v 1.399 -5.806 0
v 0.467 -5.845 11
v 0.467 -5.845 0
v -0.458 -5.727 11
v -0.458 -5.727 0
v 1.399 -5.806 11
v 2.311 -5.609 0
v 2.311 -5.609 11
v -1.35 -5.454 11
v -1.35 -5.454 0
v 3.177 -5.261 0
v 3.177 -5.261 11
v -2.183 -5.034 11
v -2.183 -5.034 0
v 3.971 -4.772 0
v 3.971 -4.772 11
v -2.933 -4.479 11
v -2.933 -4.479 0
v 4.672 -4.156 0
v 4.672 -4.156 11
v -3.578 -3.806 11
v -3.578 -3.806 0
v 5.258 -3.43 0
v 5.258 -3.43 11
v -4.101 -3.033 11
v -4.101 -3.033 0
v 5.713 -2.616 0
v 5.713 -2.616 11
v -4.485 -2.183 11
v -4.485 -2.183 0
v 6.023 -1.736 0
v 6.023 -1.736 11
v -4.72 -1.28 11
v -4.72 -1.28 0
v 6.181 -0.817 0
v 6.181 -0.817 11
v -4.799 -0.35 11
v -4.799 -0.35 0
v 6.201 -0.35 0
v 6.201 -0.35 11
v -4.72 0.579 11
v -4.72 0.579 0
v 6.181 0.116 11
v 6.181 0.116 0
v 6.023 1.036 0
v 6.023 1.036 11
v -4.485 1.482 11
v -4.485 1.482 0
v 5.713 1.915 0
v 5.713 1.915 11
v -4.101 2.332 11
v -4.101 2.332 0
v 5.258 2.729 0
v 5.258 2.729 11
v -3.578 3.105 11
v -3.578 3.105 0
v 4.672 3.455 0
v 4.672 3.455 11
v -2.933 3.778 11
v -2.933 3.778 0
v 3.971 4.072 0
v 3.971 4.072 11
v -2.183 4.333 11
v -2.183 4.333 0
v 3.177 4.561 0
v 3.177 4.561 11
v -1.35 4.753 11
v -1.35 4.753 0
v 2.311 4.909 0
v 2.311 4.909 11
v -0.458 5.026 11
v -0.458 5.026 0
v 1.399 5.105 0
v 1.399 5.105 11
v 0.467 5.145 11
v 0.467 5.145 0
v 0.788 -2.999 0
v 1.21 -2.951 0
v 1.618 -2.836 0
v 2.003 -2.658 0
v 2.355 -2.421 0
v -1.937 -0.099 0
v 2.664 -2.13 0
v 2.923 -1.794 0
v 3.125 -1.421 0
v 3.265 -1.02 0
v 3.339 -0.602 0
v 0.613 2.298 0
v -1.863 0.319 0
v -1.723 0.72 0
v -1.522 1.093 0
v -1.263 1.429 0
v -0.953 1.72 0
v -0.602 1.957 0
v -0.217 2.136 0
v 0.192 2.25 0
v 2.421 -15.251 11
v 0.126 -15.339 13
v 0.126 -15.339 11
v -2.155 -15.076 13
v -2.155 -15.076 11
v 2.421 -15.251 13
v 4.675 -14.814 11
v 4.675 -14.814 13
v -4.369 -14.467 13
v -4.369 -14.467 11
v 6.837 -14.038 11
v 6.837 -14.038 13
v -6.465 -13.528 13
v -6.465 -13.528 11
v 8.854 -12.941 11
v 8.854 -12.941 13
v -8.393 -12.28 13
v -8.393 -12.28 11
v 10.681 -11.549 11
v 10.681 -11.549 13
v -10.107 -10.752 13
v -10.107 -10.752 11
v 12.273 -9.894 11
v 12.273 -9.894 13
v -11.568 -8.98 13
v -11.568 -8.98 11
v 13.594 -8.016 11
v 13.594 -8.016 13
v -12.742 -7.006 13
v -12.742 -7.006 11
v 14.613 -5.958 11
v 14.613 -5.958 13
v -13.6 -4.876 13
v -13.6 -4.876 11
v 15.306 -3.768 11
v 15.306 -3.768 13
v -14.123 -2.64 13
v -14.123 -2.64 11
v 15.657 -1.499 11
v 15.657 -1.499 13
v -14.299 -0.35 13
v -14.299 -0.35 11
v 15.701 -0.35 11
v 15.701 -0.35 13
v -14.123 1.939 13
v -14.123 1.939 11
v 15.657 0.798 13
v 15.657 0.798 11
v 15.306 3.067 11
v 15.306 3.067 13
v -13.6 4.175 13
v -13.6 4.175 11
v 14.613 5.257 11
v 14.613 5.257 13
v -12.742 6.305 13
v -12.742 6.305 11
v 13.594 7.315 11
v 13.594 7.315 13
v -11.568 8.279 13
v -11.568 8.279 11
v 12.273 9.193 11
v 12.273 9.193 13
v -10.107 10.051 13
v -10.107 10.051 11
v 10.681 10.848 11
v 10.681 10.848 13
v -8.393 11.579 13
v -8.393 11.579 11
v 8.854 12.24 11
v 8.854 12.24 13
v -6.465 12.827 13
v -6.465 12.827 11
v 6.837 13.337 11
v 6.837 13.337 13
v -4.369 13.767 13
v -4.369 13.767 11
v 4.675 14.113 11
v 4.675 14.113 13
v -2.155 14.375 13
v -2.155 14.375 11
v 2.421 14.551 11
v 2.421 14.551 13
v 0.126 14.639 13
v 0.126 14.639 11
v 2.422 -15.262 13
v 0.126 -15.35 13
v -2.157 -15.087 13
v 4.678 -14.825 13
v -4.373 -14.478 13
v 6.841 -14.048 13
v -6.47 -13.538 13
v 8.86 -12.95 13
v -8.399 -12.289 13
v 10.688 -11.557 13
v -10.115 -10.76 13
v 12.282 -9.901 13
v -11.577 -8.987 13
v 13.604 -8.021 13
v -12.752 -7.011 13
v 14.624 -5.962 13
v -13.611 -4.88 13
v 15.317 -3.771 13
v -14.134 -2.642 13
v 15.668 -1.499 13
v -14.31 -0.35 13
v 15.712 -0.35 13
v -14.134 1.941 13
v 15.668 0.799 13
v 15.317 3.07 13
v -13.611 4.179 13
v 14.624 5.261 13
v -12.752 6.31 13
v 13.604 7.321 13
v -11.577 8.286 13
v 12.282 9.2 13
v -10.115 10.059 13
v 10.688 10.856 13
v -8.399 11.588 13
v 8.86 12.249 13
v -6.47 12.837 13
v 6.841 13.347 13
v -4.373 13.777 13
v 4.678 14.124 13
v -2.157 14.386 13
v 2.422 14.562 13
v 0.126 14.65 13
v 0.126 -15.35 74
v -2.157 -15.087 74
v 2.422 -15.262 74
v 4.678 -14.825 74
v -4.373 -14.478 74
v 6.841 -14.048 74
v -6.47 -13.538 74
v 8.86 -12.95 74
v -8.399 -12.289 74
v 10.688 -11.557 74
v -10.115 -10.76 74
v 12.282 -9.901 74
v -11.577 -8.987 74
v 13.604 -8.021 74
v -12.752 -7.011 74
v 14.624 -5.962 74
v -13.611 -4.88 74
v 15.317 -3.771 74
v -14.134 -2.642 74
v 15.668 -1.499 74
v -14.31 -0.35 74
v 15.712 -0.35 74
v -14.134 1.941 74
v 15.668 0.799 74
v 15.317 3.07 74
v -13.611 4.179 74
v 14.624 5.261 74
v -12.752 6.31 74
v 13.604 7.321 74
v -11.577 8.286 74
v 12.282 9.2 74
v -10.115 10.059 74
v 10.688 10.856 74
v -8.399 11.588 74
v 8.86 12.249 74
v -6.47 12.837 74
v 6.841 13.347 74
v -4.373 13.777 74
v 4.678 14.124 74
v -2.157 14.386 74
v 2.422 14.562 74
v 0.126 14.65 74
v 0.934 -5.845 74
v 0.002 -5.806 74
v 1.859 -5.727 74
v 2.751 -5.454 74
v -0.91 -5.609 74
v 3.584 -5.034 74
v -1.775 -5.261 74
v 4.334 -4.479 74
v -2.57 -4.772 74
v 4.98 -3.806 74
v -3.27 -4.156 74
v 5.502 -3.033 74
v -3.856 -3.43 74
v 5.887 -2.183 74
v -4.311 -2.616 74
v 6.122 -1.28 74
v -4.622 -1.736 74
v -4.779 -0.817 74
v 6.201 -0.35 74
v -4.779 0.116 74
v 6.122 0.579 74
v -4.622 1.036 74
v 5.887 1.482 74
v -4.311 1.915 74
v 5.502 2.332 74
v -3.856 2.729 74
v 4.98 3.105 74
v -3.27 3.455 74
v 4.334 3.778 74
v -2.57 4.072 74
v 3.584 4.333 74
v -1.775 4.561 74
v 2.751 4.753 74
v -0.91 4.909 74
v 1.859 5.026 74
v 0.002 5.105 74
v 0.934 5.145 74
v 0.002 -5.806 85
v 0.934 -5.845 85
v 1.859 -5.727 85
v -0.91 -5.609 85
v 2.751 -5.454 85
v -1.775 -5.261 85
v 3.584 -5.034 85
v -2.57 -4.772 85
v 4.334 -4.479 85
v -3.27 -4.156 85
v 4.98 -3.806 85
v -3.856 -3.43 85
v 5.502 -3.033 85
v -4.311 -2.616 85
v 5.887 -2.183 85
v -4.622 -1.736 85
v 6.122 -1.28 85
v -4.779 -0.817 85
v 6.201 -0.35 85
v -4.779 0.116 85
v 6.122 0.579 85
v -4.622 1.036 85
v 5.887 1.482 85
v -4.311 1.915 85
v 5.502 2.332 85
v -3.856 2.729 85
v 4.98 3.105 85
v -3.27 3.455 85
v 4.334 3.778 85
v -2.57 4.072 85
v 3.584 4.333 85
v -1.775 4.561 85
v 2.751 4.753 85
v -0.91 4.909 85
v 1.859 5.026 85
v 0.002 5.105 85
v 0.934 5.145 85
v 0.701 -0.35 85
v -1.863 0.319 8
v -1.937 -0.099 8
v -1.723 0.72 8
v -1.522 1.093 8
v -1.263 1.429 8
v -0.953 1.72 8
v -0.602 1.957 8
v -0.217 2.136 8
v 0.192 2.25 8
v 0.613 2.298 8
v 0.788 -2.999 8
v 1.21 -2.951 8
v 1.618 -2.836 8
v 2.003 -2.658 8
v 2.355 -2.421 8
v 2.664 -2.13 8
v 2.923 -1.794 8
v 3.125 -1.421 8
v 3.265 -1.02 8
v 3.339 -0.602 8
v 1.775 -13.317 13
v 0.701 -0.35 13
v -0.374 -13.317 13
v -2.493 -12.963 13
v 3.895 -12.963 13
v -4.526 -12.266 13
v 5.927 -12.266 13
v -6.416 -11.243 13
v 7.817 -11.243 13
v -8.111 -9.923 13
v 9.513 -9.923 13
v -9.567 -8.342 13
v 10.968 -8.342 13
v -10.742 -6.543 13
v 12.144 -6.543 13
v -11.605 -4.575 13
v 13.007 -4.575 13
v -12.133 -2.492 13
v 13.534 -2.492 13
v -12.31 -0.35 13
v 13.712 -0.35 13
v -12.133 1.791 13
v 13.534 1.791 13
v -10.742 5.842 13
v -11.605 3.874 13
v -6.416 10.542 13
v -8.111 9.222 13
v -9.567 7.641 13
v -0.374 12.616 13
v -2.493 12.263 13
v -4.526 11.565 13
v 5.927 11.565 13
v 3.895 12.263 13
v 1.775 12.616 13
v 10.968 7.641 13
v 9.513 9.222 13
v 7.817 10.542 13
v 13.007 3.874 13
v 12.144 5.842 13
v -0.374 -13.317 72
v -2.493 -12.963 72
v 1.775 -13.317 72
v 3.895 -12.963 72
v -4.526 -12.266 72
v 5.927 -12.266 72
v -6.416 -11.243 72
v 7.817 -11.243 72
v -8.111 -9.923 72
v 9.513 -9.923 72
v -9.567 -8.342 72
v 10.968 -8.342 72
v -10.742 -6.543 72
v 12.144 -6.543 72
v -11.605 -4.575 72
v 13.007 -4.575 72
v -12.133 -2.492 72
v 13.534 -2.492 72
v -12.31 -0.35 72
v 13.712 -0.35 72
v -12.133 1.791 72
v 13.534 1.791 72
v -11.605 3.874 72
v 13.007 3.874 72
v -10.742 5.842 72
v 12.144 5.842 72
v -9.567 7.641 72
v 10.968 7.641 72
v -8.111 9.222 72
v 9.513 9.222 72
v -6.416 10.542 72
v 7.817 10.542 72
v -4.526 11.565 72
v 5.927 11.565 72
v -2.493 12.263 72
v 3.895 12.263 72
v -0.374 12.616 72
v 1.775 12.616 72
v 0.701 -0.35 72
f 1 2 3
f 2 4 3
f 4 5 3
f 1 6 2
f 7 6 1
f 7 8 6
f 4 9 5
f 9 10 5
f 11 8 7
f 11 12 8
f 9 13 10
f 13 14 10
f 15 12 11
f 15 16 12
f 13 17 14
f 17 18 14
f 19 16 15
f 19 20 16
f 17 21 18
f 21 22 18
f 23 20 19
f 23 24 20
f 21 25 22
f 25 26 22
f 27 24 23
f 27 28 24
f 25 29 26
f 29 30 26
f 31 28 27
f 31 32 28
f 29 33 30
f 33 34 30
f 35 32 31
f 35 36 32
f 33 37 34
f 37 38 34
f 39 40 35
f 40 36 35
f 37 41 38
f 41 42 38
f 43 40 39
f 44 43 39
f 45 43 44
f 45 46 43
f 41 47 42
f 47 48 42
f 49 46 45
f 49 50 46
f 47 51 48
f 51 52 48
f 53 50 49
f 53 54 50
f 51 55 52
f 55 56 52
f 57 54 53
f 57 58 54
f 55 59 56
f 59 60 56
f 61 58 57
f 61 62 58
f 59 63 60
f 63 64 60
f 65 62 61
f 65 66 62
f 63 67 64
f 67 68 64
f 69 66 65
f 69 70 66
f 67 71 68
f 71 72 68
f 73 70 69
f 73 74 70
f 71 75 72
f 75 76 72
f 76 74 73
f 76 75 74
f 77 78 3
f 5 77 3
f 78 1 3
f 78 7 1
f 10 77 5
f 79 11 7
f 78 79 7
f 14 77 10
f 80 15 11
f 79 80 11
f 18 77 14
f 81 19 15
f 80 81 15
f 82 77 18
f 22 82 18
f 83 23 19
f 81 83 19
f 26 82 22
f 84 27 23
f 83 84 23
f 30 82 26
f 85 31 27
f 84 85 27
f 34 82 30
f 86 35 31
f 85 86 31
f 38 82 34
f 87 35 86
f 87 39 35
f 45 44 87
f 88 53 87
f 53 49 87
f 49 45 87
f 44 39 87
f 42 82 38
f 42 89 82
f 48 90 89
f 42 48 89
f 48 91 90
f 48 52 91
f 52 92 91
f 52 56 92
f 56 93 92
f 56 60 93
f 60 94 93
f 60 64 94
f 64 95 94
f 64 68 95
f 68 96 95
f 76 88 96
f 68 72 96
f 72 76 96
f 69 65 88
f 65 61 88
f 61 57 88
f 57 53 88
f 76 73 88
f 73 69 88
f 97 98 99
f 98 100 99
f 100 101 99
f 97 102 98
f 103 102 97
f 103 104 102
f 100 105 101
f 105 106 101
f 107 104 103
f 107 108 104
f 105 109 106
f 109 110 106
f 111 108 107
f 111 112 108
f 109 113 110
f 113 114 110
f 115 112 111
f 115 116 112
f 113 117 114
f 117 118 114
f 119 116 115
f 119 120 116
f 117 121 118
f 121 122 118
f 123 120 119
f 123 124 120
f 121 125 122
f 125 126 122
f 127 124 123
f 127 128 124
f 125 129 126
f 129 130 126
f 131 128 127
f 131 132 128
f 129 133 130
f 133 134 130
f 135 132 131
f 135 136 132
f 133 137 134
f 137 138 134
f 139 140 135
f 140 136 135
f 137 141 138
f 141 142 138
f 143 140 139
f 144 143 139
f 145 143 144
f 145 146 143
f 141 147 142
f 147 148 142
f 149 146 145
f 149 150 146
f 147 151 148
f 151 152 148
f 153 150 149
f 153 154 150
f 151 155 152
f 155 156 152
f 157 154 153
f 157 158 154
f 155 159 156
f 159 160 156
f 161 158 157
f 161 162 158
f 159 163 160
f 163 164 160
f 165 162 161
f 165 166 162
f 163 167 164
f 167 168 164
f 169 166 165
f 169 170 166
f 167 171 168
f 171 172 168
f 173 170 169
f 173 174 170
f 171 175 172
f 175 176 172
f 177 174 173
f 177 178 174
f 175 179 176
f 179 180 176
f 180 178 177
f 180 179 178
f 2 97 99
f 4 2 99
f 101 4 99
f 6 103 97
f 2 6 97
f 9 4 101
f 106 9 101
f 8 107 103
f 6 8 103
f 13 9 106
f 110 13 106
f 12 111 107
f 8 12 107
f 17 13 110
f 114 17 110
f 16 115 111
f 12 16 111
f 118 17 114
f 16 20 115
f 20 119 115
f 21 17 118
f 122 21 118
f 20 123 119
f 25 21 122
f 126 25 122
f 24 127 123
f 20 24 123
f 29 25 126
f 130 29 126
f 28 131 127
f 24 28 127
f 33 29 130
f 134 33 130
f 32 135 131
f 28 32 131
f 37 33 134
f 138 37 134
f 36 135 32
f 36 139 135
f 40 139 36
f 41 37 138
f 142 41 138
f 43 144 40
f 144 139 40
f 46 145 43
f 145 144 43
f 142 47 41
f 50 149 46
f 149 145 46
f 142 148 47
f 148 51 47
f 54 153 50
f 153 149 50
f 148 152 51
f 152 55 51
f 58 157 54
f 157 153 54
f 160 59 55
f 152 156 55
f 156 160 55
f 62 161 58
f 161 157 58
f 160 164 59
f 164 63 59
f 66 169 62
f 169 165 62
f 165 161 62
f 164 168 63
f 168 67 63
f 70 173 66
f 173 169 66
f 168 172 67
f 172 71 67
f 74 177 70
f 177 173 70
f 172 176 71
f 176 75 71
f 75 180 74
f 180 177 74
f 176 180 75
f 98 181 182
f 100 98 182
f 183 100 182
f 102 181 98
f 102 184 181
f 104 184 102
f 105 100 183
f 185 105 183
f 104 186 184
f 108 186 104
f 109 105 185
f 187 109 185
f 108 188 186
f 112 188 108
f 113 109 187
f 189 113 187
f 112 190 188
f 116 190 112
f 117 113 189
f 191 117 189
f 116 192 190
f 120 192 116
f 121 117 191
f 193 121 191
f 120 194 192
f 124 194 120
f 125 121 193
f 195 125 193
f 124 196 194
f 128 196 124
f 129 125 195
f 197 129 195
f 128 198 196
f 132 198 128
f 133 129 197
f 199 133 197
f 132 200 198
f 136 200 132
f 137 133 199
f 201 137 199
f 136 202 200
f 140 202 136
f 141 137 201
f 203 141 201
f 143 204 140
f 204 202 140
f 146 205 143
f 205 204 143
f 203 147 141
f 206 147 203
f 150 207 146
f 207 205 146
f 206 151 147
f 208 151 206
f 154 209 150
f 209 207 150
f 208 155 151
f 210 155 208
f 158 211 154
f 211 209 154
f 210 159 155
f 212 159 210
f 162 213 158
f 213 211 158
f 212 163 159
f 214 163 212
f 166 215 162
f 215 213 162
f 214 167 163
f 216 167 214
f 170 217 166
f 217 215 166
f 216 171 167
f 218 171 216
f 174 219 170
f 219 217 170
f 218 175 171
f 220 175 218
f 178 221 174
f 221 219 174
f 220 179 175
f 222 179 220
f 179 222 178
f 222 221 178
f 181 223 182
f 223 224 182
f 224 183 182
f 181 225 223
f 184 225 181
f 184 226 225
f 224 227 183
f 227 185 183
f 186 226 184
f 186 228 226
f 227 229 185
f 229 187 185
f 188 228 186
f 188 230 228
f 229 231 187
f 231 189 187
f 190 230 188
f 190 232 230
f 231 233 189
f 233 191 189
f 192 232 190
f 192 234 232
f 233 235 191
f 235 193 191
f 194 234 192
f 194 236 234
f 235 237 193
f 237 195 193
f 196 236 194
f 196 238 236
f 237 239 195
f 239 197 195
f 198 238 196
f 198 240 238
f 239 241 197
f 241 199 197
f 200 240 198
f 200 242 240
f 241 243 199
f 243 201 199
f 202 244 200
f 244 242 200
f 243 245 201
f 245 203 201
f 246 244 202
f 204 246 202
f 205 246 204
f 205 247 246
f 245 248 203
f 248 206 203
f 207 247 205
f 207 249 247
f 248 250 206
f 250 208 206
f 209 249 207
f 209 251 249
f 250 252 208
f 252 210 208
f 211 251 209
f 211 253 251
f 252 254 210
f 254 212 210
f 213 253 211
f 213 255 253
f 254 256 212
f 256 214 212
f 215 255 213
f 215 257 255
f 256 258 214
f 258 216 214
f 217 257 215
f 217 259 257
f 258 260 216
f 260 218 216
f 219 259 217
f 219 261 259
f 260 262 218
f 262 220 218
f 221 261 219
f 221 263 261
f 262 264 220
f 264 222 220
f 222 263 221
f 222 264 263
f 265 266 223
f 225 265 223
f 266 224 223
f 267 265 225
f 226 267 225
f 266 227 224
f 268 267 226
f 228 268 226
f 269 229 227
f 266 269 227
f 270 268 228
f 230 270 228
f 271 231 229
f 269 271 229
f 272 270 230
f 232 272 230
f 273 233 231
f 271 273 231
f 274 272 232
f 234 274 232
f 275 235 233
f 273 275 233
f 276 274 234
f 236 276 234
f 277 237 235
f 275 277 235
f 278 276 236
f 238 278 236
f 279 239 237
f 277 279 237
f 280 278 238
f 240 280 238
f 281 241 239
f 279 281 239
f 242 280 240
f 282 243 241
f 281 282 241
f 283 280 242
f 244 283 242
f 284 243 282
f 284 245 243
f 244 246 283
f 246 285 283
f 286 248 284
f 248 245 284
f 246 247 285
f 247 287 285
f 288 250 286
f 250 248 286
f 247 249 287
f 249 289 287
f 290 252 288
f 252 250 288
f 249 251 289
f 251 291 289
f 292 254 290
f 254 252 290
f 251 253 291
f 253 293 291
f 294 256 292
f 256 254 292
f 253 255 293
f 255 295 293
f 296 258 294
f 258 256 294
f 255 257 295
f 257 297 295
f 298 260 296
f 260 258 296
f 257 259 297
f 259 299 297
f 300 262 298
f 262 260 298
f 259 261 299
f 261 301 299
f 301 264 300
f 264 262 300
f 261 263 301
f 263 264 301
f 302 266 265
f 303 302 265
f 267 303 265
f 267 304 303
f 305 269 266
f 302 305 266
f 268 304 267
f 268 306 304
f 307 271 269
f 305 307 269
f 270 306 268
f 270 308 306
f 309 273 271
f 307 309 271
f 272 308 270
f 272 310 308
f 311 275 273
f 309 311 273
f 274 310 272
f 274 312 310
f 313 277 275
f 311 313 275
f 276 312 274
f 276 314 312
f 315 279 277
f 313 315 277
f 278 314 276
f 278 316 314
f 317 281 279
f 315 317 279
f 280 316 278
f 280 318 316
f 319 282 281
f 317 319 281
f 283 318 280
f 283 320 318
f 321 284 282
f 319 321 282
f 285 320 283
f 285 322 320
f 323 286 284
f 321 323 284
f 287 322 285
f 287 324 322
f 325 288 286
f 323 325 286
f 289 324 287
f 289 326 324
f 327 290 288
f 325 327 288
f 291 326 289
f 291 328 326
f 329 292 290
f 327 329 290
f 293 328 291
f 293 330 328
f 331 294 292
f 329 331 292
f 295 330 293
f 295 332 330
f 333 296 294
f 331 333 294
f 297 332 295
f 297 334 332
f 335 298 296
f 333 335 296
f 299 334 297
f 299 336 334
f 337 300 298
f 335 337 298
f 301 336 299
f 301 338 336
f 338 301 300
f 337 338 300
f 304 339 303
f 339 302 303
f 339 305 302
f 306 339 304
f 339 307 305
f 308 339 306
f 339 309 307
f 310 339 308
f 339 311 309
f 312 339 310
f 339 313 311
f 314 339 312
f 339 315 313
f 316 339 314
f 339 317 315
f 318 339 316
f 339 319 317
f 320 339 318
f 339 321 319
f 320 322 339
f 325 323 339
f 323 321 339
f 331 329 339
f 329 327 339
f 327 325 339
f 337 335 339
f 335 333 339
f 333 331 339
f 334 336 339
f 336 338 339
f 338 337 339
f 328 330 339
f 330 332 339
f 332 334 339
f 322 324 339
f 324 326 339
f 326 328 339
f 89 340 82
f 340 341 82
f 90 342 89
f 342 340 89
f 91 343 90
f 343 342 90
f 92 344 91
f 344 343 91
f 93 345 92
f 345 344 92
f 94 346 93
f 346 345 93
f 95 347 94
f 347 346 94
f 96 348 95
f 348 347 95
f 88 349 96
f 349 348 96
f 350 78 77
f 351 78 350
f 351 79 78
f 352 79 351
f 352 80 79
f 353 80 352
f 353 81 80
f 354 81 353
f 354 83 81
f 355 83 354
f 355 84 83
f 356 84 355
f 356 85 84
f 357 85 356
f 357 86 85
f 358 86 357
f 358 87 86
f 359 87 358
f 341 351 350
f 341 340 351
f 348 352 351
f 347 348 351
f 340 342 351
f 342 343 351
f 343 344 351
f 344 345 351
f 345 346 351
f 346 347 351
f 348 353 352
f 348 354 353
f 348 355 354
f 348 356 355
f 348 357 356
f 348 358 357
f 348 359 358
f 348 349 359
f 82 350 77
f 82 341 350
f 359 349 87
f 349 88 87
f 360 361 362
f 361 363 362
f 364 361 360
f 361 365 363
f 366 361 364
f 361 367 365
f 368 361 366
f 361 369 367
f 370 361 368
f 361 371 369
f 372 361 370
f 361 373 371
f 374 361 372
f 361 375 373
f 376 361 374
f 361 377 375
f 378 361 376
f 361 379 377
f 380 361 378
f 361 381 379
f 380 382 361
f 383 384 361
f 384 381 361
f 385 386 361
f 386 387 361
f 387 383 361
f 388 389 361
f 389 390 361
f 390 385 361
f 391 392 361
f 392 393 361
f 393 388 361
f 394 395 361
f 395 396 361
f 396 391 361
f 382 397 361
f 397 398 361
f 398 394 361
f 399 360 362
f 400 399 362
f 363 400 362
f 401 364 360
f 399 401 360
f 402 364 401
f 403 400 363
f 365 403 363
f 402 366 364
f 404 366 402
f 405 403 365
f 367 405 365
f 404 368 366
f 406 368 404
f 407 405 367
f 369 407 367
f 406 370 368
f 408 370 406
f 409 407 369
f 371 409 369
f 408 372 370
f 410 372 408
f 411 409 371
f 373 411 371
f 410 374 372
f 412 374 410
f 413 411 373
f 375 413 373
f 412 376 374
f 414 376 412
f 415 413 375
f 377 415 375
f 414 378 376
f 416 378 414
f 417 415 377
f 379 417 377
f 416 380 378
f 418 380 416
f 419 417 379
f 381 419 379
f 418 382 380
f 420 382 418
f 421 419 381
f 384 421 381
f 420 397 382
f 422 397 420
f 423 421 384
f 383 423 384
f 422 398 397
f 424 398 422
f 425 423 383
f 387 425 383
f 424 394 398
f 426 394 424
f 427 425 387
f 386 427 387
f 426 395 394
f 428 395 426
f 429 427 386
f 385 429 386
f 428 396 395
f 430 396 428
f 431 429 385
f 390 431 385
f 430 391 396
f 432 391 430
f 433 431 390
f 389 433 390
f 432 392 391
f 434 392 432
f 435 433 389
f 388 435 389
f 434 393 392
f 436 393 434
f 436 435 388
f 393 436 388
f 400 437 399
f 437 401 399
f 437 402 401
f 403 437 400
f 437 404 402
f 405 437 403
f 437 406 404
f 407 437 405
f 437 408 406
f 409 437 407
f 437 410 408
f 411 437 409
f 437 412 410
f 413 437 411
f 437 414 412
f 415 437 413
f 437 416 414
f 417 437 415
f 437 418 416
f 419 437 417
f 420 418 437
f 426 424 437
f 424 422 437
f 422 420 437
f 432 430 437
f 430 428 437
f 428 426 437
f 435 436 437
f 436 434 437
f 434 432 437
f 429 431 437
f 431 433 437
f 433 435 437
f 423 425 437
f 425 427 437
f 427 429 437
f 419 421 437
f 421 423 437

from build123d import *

# Parameters (mm, degrees)
SKETCH1_R           = 5.5
BOSS_EXTRUDE1_DEPTH = 11
SKETCH3_R           = 15
BOSS_EXTRUDE2_DEPTH = 2
SKETCH4_R           = 15.011076053
SKETCH4_R_2         = 13.011076053
BOSS_EXTRUDE3_DEPTH = 59
SKETCH5_R           = 15.011076053
BOSS_EXTRUDE4_DEPTH = 2
CAVITY1_OUTLINE_R   = 1.25
CAVITY1_DEPTH       = 8
SKETCH6_R           = 1.25
CUT_EXTRUDE1_DEPTH  = 8


# Read off the part's stored shape, not the designer's step: Cavity1
with BuildPart() as part:
    # Sketch1 → Boss-Extrude1 (new body)
    with BuildSketch(Plane.XY):
        with Locations((0.700759494, -0.350379747)):
            Circle(SKETCH1_R)
    boss_extrude1 = extrude(amount=BOSS_EXTRUDE1_DEPTH)

    # Sketch3 → Boss-Extrude2 (add)
    with BuildSketch(Plane.XY.offset(11)):
        with Locations((0.700759494, -0.350379747)):
            Circle(SKETCH3_R)
    extrude(amount=BOSS_EXTRUDE2_DEPTH)

    # Sketch4 → Boss-Extrude3 (add)
    with BuildSketch(Plane.XY.offset(13)):
        with Locations((0.700759494, -0.350379747)):
            Circle(SKETCH4_R)
        with Locations((0.700759494, -0.350379747)):
            Circle(SKETCH4_R_2, mode=Mode.SUBTRACT)
    extrude(amount=BOSS_EXTRUDE3_DEPTH)

    # Sketch5 → Boss-Extrude4 (add)
    with BuildSketch(Plane.XY.offset(72)):
        with Locations((0.700759494, -0.350379747)):
            Circle(SKETCH5_R)
    extrude(amount=BOSS_EXTRUDE4_DEPTH)

    # Mirror1: Boss-Extrude1 across plane
    add(boss_extrude1.mirror(Plane.XY.offset(42.5)))

    # Cavity1 outline → Cavity1 (cut)
    with BuildSketch(Plane.XY):
        with BuildLine():
            Line((3.338761962, -0.602258645), (0.613426942, 2.29818081))
            ThreePointArc((0.613426942, 2.29818081), (-1.113870906, 1.580841761), (-1.937242974, -0.098500849))
            Line((-1.937242974, -0.098500849), (0.788092045, -2.998940304))
            ThreePointArc((0.788092045, -2.998940304), (2.515389893, -2.281601255), (3.338761962, -0.602258645))
        make_face()
        with Locations((0.700759494, -0.350379747)):
            Circle(CAVITY1_OUTLINE_R, mode=Mode.SUBTRACT)
    extrude(amount=CAVITY1_DEPTH, mode=Mode.SUBTRACT)

    # Sketch6 → Cut-Extrude1 (cut)
    with BuildSketch(Plane(origin=(0, 0, 0), x_dir=(-1, 0, 0), z_dir=(0, 0, -1))):
        with Locations((-0.700759494, -0.350379747)):
            Circle(SKETCH6_R)
    extrude(amount=-CUT_EXTRUDE1_DEPTH, mode=Mode.SUBTRACT)


solid = part.part
